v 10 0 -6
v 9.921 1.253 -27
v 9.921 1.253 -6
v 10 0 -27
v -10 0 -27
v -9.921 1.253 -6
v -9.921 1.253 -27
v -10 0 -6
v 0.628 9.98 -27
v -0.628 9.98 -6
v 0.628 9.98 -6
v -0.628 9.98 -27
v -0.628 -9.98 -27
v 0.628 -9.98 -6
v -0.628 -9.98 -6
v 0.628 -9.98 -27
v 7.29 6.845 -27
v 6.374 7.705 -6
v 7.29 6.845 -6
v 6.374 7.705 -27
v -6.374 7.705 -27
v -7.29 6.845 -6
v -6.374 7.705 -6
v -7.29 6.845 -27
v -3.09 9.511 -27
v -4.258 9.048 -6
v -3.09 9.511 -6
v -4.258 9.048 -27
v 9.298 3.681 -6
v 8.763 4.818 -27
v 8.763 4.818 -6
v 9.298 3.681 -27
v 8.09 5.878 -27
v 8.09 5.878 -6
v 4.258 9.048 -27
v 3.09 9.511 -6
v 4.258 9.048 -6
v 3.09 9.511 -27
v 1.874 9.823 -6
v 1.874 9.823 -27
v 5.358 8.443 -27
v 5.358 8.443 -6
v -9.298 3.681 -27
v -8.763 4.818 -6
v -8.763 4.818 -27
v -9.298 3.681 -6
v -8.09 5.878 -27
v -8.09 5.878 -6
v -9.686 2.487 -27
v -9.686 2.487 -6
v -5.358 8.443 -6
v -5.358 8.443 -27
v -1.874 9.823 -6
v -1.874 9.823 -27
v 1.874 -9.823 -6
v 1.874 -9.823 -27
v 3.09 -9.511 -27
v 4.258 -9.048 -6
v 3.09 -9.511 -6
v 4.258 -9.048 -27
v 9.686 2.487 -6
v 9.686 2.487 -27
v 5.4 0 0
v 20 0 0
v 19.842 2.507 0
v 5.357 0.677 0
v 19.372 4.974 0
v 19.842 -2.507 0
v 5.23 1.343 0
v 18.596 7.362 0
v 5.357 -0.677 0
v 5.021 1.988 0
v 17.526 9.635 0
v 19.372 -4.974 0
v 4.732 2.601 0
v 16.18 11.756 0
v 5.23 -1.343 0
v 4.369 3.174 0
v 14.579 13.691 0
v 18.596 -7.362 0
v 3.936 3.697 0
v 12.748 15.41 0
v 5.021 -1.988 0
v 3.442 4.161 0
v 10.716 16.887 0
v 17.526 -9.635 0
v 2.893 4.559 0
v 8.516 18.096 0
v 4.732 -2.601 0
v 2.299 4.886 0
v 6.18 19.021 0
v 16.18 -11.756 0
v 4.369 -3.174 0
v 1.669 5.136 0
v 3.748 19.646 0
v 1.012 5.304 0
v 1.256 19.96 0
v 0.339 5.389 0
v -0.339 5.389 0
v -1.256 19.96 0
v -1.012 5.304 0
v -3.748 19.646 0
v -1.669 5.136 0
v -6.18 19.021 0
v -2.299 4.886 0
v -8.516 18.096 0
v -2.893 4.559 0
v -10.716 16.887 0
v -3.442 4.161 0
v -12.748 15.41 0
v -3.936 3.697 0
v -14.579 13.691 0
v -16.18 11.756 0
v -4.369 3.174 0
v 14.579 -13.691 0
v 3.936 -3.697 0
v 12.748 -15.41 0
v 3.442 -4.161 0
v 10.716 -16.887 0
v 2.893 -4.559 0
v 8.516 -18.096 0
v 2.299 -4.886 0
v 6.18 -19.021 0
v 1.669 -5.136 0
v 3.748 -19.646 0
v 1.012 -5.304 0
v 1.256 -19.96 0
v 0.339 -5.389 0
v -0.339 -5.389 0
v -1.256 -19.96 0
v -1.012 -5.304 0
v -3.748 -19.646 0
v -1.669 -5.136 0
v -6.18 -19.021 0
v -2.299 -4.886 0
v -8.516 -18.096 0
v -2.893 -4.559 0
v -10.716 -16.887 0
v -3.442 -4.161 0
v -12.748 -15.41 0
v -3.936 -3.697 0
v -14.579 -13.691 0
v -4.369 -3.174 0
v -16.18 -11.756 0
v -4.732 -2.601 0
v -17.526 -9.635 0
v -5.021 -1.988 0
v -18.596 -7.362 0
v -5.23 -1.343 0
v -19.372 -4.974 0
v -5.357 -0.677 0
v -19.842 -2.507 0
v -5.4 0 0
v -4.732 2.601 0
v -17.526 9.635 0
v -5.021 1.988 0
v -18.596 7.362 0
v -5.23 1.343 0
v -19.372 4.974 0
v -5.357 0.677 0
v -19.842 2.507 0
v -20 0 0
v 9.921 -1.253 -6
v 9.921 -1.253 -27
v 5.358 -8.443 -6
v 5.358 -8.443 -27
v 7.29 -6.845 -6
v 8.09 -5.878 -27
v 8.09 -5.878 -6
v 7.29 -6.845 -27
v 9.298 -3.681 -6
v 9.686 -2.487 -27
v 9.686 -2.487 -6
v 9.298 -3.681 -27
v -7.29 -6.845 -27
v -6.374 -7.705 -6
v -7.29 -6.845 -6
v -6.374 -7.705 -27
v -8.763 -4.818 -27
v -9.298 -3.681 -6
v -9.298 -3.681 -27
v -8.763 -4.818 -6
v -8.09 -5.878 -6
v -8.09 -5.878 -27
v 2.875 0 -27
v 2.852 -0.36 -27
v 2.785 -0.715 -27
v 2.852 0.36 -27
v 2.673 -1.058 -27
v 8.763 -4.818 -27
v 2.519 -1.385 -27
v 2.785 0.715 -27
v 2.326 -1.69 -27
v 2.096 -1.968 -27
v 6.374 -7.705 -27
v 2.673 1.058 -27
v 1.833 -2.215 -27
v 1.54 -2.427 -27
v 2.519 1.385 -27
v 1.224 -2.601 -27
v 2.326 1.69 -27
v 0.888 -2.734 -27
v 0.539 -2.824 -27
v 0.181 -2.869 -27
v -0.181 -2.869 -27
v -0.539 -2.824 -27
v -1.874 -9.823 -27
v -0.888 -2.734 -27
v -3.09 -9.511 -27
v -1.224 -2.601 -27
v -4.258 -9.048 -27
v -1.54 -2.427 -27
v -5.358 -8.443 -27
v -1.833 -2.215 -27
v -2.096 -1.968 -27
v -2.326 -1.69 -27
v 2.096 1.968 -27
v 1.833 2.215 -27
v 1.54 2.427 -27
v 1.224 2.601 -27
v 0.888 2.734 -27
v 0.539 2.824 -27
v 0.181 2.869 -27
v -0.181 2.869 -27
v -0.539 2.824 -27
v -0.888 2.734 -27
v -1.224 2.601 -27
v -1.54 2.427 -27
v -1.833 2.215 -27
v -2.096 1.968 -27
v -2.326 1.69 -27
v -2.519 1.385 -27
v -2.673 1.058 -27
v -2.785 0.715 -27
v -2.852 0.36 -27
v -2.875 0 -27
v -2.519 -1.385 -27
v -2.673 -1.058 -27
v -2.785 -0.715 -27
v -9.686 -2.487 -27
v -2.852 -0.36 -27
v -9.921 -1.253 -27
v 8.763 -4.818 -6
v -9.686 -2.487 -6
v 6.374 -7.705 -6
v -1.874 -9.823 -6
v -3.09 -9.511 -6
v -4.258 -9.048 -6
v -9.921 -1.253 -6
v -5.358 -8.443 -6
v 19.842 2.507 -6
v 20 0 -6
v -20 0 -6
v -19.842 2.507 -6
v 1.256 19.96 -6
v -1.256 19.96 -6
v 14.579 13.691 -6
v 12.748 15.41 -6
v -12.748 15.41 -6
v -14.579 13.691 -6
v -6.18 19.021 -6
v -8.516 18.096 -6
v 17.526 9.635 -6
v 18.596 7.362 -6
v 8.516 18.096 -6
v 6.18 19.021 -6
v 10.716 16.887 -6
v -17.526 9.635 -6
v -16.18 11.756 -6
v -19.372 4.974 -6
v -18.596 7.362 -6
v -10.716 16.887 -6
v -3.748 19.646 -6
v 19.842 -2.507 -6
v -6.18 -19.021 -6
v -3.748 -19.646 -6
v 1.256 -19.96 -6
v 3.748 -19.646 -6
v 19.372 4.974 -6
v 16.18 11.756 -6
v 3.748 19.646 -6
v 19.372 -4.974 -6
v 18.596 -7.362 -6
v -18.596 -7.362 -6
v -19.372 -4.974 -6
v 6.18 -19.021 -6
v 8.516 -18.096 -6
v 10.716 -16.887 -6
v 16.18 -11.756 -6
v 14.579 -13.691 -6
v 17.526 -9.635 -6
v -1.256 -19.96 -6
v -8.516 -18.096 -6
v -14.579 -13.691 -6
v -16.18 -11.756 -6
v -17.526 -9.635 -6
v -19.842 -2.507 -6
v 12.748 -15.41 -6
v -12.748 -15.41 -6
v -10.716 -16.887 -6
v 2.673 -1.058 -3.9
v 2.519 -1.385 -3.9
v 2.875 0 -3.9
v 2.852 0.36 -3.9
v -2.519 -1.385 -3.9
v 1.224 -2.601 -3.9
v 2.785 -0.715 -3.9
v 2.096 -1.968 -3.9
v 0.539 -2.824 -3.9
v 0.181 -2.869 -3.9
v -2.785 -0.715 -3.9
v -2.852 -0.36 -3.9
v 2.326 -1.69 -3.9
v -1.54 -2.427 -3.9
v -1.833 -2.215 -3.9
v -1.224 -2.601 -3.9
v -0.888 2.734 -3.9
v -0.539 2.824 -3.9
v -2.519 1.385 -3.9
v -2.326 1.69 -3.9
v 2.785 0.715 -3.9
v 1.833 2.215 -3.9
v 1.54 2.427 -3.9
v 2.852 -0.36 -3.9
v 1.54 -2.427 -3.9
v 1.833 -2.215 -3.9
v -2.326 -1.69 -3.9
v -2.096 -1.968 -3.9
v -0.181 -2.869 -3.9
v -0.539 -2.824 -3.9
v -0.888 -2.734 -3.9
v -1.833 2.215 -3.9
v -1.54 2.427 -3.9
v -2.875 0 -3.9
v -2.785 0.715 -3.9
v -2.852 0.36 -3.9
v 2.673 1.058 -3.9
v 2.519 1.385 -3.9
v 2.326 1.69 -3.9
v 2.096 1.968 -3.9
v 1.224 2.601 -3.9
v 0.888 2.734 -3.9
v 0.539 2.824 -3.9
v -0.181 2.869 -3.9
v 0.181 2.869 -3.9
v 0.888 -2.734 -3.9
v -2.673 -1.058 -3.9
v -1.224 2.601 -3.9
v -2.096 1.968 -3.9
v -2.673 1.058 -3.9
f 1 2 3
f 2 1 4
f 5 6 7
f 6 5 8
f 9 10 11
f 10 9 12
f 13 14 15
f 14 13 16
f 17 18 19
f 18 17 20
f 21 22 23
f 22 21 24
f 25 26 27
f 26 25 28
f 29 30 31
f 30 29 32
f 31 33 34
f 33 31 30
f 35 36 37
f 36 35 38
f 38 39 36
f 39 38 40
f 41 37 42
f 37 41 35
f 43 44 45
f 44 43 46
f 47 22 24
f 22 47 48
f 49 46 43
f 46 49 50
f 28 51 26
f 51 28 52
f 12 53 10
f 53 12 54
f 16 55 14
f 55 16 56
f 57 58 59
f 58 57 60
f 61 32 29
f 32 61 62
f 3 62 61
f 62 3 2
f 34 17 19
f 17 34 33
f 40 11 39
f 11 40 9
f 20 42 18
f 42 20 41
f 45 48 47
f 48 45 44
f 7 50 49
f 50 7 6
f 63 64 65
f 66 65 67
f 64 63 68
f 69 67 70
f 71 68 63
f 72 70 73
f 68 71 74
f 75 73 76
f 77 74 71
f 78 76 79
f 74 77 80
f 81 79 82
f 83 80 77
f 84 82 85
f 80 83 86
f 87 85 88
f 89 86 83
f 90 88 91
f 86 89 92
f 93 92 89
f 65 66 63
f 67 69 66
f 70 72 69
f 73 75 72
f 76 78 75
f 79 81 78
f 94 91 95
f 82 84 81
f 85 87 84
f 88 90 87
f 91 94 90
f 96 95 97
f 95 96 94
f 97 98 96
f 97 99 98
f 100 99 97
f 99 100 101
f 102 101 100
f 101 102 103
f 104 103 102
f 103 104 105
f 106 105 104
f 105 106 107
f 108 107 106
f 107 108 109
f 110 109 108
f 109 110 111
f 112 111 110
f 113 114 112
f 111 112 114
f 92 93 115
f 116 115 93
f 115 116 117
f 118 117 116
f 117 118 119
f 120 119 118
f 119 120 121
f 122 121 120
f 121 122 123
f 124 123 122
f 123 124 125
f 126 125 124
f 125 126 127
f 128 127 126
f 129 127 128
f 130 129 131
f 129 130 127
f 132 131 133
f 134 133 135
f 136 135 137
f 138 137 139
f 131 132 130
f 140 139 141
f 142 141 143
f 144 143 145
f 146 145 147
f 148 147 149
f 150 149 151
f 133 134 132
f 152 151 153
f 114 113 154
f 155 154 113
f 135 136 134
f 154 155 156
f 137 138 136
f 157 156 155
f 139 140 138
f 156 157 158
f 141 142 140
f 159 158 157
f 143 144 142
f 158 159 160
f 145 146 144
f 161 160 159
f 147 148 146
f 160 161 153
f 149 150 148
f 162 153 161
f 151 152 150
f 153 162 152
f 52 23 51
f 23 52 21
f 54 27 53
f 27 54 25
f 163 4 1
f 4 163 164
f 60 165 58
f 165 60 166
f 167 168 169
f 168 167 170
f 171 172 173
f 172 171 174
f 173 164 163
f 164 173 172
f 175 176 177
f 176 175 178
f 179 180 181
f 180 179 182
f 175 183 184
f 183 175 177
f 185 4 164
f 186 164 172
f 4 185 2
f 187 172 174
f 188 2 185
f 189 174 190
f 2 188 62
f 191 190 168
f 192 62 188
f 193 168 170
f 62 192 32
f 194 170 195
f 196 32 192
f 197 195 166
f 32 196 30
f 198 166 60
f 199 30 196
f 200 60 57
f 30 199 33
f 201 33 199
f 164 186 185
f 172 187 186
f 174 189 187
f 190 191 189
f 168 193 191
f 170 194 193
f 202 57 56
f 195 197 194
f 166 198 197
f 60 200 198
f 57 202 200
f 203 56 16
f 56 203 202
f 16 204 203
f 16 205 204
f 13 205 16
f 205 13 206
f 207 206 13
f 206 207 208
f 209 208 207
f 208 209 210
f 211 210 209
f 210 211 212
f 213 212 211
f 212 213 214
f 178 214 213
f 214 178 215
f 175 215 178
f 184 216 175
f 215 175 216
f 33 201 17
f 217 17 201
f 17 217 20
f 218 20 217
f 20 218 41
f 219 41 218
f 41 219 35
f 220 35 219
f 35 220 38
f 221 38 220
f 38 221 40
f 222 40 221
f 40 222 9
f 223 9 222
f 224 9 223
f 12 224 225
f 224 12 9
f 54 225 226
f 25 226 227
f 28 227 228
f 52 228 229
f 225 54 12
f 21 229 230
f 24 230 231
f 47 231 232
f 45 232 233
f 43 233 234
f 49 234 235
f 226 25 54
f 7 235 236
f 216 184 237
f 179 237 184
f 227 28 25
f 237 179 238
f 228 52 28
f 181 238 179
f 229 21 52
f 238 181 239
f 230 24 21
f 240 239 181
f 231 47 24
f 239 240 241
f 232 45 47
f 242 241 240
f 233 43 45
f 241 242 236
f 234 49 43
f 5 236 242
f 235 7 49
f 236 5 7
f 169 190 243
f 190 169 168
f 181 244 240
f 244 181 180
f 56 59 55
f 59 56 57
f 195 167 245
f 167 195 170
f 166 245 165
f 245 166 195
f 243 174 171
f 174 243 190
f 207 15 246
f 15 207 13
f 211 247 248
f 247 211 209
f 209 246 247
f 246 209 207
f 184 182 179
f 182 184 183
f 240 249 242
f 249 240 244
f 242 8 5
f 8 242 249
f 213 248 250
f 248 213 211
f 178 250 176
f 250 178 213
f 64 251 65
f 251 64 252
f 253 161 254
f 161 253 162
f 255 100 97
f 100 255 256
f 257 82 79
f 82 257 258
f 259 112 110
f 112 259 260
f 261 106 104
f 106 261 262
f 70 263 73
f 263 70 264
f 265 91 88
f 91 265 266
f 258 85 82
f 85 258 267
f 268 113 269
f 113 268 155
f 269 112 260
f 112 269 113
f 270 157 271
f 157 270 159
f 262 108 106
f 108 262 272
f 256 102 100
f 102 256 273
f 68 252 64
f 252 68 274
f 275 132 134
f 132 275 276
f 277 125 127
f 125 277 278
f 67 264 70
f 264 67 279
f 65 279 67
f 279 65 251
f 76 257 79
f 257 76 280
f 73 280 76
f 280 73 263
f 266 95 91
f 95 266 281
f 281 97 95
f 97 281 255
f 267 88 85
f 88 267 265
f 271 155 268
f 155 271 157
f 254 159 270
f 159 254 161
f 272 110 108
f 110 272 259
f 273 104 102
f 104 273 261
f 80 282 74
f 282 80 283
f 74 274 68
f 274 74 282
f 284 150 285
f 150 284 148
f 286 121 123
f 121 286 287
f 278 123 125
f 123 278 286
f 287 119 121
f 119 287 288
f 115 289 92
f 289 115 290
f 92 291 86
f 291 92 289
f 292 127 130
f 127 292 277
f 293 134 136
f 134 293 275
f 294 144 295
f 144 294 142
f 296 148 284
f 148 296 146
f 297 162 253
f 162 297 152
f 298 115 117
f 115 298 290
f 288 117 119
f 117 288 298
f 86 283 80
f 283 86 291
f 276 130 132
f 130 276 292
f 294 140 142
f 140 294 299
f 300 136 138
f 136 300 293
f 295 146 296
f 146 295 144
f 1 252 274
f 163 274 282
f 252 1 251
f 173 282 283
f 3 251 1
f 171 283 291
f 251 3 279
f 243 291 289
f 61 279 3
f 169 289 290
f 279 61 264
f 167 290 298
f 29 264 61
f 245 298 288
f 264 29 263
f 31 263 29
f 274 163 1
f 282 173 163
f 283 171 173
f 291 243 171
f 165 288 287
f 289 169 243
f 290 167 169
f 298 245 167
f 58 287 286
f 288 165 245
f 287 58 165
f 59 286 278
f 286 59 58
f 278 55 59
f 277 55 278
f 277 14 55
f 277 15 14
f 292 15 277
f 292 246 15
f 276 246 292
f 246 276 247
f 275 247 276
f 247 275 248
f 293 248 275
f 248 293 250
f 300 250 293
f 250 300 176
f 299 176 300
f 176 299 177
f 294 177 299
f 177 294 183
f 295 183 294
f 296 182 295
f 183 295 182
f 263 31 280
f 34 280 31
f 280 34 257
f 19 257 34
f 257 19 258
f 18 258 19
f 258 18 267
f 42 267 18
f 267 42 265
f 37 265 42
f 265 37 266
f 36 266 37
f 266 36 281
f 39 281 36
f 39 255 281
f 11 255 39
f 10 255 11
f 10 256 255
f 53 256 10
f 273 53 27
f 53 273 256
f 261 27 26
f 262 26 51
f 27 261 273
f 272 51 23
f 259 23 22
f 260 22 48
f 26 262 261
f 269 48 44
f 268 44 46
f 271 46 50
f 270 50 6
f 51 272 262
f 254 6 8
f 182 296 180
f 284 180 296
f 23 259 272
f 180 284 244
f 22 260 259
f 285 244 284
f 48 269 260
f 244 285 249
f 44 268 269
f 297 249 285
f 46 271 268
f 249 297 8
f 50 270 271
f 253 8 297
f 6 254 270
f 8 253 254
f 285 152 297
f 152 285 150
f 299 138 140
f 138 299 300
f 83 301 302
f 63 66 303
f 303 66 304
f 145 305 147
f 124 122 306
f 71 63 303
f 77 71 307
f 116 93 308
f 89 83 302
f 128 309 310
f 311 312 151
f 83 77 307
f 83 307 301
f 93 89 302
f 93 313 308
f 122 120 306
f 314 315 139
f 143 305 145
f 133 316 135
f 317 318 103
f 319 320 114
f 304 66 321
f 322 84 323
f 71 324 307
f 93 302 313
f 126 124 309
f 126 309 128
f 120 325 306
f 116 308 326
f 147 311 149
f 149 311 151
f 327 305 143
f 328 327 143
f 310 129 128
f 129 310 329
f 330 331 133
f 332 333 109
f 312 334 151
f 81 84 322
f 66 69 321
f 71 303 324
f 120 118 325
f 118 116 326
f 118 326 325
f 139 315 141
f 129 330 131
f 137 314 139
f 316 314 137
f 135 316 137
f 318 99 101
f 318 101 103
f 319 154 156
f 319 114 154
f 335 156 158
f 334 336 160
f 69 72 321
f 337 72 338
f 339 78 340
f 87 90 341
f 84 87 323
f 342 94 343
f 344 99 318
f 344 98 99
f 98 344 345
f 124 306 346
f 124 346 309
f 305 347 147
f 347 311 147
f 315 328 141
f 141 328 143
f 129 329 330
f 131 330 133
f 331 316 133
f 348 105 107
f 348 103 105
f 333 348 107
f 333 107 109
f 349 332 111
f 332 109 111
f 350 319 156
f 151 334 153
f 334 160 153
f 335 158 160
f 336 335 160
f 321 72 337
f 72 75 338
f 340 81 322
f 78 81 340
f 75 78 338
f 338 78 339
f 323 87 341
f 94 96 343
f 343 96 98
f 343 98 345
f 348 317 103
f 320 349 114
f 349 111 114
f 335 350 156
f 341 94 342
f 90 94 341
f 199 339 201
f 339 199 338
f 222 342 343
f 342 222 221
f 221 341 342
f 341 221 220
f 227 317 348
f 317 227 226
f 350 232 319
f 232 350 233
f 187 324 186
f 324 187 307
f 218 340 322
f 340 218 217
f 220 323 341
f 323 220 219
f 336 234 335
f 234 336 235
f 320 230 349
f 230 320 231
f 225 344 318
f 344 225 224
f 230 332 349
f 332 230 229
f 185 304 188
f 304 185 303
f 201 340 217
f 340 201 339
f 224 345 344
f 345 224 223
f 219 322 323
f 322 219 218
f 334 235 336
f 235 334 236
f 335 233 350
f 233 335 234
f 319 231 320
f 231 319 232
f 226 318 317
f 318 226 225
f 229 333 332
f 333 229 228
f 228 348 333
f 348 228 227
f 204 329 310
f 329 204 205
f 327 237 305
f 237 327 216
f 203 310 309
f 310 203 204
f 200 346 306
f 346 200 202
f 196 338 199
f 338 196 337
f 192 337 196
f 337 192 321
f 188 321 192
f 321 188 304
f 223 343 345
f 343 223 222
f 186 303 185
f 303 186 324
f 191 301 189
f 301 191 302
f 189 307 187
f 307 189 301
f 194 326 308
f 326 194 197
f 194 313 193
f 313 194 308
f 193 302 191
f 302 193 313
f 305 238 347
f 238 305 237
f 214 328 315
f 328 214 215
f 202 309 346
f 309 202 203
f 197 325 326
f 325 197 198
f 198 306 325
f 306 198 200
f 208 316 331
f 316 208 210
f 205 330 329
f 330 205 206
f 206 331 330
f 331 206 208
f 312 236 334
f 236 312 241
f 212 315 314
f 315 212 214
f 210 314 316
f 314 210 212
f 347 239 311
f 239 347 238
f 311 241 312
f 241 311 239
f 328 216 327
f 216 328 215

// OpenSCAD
$fn = 50;


difference() {
	union() {
		translate(v = [0, 0, -27.0000000000]) {
			cylinder(h = 27, r = 10.0000000000);
		}
		translate(v = [0, 0, -6.0000000000]) {
			cylinder(h = 6, r = 20.0000000000);
		}
	}
	union() {
		translate(v = [0, 0, 0]) {
			rotate(a = [0, 0, 0]) {
				difference() {
					union() {
						#translate(v = [0, 0, -27.0000000000]) {
							cylinder(h = 27, r = 2.6000000000);
						}
						#translate(v = [0, 0, -3.9000000000]) {
							cylinder(h = 3.9000000000, r = 10.0000000000, r1 = 2.8750000000, r2 = 5.4000000000);
						}
						#translate(v = [0, 0, -27.0000000000]) {
							cylinder(h = 27, r = 2.8750000000);
						}
						#translate(v = [0, 0, -27.0000000000]) {
							cylinder(h = 27, r = 2.6000000000);
						}
					}
					union();
				}
			}
		}
	}
}
